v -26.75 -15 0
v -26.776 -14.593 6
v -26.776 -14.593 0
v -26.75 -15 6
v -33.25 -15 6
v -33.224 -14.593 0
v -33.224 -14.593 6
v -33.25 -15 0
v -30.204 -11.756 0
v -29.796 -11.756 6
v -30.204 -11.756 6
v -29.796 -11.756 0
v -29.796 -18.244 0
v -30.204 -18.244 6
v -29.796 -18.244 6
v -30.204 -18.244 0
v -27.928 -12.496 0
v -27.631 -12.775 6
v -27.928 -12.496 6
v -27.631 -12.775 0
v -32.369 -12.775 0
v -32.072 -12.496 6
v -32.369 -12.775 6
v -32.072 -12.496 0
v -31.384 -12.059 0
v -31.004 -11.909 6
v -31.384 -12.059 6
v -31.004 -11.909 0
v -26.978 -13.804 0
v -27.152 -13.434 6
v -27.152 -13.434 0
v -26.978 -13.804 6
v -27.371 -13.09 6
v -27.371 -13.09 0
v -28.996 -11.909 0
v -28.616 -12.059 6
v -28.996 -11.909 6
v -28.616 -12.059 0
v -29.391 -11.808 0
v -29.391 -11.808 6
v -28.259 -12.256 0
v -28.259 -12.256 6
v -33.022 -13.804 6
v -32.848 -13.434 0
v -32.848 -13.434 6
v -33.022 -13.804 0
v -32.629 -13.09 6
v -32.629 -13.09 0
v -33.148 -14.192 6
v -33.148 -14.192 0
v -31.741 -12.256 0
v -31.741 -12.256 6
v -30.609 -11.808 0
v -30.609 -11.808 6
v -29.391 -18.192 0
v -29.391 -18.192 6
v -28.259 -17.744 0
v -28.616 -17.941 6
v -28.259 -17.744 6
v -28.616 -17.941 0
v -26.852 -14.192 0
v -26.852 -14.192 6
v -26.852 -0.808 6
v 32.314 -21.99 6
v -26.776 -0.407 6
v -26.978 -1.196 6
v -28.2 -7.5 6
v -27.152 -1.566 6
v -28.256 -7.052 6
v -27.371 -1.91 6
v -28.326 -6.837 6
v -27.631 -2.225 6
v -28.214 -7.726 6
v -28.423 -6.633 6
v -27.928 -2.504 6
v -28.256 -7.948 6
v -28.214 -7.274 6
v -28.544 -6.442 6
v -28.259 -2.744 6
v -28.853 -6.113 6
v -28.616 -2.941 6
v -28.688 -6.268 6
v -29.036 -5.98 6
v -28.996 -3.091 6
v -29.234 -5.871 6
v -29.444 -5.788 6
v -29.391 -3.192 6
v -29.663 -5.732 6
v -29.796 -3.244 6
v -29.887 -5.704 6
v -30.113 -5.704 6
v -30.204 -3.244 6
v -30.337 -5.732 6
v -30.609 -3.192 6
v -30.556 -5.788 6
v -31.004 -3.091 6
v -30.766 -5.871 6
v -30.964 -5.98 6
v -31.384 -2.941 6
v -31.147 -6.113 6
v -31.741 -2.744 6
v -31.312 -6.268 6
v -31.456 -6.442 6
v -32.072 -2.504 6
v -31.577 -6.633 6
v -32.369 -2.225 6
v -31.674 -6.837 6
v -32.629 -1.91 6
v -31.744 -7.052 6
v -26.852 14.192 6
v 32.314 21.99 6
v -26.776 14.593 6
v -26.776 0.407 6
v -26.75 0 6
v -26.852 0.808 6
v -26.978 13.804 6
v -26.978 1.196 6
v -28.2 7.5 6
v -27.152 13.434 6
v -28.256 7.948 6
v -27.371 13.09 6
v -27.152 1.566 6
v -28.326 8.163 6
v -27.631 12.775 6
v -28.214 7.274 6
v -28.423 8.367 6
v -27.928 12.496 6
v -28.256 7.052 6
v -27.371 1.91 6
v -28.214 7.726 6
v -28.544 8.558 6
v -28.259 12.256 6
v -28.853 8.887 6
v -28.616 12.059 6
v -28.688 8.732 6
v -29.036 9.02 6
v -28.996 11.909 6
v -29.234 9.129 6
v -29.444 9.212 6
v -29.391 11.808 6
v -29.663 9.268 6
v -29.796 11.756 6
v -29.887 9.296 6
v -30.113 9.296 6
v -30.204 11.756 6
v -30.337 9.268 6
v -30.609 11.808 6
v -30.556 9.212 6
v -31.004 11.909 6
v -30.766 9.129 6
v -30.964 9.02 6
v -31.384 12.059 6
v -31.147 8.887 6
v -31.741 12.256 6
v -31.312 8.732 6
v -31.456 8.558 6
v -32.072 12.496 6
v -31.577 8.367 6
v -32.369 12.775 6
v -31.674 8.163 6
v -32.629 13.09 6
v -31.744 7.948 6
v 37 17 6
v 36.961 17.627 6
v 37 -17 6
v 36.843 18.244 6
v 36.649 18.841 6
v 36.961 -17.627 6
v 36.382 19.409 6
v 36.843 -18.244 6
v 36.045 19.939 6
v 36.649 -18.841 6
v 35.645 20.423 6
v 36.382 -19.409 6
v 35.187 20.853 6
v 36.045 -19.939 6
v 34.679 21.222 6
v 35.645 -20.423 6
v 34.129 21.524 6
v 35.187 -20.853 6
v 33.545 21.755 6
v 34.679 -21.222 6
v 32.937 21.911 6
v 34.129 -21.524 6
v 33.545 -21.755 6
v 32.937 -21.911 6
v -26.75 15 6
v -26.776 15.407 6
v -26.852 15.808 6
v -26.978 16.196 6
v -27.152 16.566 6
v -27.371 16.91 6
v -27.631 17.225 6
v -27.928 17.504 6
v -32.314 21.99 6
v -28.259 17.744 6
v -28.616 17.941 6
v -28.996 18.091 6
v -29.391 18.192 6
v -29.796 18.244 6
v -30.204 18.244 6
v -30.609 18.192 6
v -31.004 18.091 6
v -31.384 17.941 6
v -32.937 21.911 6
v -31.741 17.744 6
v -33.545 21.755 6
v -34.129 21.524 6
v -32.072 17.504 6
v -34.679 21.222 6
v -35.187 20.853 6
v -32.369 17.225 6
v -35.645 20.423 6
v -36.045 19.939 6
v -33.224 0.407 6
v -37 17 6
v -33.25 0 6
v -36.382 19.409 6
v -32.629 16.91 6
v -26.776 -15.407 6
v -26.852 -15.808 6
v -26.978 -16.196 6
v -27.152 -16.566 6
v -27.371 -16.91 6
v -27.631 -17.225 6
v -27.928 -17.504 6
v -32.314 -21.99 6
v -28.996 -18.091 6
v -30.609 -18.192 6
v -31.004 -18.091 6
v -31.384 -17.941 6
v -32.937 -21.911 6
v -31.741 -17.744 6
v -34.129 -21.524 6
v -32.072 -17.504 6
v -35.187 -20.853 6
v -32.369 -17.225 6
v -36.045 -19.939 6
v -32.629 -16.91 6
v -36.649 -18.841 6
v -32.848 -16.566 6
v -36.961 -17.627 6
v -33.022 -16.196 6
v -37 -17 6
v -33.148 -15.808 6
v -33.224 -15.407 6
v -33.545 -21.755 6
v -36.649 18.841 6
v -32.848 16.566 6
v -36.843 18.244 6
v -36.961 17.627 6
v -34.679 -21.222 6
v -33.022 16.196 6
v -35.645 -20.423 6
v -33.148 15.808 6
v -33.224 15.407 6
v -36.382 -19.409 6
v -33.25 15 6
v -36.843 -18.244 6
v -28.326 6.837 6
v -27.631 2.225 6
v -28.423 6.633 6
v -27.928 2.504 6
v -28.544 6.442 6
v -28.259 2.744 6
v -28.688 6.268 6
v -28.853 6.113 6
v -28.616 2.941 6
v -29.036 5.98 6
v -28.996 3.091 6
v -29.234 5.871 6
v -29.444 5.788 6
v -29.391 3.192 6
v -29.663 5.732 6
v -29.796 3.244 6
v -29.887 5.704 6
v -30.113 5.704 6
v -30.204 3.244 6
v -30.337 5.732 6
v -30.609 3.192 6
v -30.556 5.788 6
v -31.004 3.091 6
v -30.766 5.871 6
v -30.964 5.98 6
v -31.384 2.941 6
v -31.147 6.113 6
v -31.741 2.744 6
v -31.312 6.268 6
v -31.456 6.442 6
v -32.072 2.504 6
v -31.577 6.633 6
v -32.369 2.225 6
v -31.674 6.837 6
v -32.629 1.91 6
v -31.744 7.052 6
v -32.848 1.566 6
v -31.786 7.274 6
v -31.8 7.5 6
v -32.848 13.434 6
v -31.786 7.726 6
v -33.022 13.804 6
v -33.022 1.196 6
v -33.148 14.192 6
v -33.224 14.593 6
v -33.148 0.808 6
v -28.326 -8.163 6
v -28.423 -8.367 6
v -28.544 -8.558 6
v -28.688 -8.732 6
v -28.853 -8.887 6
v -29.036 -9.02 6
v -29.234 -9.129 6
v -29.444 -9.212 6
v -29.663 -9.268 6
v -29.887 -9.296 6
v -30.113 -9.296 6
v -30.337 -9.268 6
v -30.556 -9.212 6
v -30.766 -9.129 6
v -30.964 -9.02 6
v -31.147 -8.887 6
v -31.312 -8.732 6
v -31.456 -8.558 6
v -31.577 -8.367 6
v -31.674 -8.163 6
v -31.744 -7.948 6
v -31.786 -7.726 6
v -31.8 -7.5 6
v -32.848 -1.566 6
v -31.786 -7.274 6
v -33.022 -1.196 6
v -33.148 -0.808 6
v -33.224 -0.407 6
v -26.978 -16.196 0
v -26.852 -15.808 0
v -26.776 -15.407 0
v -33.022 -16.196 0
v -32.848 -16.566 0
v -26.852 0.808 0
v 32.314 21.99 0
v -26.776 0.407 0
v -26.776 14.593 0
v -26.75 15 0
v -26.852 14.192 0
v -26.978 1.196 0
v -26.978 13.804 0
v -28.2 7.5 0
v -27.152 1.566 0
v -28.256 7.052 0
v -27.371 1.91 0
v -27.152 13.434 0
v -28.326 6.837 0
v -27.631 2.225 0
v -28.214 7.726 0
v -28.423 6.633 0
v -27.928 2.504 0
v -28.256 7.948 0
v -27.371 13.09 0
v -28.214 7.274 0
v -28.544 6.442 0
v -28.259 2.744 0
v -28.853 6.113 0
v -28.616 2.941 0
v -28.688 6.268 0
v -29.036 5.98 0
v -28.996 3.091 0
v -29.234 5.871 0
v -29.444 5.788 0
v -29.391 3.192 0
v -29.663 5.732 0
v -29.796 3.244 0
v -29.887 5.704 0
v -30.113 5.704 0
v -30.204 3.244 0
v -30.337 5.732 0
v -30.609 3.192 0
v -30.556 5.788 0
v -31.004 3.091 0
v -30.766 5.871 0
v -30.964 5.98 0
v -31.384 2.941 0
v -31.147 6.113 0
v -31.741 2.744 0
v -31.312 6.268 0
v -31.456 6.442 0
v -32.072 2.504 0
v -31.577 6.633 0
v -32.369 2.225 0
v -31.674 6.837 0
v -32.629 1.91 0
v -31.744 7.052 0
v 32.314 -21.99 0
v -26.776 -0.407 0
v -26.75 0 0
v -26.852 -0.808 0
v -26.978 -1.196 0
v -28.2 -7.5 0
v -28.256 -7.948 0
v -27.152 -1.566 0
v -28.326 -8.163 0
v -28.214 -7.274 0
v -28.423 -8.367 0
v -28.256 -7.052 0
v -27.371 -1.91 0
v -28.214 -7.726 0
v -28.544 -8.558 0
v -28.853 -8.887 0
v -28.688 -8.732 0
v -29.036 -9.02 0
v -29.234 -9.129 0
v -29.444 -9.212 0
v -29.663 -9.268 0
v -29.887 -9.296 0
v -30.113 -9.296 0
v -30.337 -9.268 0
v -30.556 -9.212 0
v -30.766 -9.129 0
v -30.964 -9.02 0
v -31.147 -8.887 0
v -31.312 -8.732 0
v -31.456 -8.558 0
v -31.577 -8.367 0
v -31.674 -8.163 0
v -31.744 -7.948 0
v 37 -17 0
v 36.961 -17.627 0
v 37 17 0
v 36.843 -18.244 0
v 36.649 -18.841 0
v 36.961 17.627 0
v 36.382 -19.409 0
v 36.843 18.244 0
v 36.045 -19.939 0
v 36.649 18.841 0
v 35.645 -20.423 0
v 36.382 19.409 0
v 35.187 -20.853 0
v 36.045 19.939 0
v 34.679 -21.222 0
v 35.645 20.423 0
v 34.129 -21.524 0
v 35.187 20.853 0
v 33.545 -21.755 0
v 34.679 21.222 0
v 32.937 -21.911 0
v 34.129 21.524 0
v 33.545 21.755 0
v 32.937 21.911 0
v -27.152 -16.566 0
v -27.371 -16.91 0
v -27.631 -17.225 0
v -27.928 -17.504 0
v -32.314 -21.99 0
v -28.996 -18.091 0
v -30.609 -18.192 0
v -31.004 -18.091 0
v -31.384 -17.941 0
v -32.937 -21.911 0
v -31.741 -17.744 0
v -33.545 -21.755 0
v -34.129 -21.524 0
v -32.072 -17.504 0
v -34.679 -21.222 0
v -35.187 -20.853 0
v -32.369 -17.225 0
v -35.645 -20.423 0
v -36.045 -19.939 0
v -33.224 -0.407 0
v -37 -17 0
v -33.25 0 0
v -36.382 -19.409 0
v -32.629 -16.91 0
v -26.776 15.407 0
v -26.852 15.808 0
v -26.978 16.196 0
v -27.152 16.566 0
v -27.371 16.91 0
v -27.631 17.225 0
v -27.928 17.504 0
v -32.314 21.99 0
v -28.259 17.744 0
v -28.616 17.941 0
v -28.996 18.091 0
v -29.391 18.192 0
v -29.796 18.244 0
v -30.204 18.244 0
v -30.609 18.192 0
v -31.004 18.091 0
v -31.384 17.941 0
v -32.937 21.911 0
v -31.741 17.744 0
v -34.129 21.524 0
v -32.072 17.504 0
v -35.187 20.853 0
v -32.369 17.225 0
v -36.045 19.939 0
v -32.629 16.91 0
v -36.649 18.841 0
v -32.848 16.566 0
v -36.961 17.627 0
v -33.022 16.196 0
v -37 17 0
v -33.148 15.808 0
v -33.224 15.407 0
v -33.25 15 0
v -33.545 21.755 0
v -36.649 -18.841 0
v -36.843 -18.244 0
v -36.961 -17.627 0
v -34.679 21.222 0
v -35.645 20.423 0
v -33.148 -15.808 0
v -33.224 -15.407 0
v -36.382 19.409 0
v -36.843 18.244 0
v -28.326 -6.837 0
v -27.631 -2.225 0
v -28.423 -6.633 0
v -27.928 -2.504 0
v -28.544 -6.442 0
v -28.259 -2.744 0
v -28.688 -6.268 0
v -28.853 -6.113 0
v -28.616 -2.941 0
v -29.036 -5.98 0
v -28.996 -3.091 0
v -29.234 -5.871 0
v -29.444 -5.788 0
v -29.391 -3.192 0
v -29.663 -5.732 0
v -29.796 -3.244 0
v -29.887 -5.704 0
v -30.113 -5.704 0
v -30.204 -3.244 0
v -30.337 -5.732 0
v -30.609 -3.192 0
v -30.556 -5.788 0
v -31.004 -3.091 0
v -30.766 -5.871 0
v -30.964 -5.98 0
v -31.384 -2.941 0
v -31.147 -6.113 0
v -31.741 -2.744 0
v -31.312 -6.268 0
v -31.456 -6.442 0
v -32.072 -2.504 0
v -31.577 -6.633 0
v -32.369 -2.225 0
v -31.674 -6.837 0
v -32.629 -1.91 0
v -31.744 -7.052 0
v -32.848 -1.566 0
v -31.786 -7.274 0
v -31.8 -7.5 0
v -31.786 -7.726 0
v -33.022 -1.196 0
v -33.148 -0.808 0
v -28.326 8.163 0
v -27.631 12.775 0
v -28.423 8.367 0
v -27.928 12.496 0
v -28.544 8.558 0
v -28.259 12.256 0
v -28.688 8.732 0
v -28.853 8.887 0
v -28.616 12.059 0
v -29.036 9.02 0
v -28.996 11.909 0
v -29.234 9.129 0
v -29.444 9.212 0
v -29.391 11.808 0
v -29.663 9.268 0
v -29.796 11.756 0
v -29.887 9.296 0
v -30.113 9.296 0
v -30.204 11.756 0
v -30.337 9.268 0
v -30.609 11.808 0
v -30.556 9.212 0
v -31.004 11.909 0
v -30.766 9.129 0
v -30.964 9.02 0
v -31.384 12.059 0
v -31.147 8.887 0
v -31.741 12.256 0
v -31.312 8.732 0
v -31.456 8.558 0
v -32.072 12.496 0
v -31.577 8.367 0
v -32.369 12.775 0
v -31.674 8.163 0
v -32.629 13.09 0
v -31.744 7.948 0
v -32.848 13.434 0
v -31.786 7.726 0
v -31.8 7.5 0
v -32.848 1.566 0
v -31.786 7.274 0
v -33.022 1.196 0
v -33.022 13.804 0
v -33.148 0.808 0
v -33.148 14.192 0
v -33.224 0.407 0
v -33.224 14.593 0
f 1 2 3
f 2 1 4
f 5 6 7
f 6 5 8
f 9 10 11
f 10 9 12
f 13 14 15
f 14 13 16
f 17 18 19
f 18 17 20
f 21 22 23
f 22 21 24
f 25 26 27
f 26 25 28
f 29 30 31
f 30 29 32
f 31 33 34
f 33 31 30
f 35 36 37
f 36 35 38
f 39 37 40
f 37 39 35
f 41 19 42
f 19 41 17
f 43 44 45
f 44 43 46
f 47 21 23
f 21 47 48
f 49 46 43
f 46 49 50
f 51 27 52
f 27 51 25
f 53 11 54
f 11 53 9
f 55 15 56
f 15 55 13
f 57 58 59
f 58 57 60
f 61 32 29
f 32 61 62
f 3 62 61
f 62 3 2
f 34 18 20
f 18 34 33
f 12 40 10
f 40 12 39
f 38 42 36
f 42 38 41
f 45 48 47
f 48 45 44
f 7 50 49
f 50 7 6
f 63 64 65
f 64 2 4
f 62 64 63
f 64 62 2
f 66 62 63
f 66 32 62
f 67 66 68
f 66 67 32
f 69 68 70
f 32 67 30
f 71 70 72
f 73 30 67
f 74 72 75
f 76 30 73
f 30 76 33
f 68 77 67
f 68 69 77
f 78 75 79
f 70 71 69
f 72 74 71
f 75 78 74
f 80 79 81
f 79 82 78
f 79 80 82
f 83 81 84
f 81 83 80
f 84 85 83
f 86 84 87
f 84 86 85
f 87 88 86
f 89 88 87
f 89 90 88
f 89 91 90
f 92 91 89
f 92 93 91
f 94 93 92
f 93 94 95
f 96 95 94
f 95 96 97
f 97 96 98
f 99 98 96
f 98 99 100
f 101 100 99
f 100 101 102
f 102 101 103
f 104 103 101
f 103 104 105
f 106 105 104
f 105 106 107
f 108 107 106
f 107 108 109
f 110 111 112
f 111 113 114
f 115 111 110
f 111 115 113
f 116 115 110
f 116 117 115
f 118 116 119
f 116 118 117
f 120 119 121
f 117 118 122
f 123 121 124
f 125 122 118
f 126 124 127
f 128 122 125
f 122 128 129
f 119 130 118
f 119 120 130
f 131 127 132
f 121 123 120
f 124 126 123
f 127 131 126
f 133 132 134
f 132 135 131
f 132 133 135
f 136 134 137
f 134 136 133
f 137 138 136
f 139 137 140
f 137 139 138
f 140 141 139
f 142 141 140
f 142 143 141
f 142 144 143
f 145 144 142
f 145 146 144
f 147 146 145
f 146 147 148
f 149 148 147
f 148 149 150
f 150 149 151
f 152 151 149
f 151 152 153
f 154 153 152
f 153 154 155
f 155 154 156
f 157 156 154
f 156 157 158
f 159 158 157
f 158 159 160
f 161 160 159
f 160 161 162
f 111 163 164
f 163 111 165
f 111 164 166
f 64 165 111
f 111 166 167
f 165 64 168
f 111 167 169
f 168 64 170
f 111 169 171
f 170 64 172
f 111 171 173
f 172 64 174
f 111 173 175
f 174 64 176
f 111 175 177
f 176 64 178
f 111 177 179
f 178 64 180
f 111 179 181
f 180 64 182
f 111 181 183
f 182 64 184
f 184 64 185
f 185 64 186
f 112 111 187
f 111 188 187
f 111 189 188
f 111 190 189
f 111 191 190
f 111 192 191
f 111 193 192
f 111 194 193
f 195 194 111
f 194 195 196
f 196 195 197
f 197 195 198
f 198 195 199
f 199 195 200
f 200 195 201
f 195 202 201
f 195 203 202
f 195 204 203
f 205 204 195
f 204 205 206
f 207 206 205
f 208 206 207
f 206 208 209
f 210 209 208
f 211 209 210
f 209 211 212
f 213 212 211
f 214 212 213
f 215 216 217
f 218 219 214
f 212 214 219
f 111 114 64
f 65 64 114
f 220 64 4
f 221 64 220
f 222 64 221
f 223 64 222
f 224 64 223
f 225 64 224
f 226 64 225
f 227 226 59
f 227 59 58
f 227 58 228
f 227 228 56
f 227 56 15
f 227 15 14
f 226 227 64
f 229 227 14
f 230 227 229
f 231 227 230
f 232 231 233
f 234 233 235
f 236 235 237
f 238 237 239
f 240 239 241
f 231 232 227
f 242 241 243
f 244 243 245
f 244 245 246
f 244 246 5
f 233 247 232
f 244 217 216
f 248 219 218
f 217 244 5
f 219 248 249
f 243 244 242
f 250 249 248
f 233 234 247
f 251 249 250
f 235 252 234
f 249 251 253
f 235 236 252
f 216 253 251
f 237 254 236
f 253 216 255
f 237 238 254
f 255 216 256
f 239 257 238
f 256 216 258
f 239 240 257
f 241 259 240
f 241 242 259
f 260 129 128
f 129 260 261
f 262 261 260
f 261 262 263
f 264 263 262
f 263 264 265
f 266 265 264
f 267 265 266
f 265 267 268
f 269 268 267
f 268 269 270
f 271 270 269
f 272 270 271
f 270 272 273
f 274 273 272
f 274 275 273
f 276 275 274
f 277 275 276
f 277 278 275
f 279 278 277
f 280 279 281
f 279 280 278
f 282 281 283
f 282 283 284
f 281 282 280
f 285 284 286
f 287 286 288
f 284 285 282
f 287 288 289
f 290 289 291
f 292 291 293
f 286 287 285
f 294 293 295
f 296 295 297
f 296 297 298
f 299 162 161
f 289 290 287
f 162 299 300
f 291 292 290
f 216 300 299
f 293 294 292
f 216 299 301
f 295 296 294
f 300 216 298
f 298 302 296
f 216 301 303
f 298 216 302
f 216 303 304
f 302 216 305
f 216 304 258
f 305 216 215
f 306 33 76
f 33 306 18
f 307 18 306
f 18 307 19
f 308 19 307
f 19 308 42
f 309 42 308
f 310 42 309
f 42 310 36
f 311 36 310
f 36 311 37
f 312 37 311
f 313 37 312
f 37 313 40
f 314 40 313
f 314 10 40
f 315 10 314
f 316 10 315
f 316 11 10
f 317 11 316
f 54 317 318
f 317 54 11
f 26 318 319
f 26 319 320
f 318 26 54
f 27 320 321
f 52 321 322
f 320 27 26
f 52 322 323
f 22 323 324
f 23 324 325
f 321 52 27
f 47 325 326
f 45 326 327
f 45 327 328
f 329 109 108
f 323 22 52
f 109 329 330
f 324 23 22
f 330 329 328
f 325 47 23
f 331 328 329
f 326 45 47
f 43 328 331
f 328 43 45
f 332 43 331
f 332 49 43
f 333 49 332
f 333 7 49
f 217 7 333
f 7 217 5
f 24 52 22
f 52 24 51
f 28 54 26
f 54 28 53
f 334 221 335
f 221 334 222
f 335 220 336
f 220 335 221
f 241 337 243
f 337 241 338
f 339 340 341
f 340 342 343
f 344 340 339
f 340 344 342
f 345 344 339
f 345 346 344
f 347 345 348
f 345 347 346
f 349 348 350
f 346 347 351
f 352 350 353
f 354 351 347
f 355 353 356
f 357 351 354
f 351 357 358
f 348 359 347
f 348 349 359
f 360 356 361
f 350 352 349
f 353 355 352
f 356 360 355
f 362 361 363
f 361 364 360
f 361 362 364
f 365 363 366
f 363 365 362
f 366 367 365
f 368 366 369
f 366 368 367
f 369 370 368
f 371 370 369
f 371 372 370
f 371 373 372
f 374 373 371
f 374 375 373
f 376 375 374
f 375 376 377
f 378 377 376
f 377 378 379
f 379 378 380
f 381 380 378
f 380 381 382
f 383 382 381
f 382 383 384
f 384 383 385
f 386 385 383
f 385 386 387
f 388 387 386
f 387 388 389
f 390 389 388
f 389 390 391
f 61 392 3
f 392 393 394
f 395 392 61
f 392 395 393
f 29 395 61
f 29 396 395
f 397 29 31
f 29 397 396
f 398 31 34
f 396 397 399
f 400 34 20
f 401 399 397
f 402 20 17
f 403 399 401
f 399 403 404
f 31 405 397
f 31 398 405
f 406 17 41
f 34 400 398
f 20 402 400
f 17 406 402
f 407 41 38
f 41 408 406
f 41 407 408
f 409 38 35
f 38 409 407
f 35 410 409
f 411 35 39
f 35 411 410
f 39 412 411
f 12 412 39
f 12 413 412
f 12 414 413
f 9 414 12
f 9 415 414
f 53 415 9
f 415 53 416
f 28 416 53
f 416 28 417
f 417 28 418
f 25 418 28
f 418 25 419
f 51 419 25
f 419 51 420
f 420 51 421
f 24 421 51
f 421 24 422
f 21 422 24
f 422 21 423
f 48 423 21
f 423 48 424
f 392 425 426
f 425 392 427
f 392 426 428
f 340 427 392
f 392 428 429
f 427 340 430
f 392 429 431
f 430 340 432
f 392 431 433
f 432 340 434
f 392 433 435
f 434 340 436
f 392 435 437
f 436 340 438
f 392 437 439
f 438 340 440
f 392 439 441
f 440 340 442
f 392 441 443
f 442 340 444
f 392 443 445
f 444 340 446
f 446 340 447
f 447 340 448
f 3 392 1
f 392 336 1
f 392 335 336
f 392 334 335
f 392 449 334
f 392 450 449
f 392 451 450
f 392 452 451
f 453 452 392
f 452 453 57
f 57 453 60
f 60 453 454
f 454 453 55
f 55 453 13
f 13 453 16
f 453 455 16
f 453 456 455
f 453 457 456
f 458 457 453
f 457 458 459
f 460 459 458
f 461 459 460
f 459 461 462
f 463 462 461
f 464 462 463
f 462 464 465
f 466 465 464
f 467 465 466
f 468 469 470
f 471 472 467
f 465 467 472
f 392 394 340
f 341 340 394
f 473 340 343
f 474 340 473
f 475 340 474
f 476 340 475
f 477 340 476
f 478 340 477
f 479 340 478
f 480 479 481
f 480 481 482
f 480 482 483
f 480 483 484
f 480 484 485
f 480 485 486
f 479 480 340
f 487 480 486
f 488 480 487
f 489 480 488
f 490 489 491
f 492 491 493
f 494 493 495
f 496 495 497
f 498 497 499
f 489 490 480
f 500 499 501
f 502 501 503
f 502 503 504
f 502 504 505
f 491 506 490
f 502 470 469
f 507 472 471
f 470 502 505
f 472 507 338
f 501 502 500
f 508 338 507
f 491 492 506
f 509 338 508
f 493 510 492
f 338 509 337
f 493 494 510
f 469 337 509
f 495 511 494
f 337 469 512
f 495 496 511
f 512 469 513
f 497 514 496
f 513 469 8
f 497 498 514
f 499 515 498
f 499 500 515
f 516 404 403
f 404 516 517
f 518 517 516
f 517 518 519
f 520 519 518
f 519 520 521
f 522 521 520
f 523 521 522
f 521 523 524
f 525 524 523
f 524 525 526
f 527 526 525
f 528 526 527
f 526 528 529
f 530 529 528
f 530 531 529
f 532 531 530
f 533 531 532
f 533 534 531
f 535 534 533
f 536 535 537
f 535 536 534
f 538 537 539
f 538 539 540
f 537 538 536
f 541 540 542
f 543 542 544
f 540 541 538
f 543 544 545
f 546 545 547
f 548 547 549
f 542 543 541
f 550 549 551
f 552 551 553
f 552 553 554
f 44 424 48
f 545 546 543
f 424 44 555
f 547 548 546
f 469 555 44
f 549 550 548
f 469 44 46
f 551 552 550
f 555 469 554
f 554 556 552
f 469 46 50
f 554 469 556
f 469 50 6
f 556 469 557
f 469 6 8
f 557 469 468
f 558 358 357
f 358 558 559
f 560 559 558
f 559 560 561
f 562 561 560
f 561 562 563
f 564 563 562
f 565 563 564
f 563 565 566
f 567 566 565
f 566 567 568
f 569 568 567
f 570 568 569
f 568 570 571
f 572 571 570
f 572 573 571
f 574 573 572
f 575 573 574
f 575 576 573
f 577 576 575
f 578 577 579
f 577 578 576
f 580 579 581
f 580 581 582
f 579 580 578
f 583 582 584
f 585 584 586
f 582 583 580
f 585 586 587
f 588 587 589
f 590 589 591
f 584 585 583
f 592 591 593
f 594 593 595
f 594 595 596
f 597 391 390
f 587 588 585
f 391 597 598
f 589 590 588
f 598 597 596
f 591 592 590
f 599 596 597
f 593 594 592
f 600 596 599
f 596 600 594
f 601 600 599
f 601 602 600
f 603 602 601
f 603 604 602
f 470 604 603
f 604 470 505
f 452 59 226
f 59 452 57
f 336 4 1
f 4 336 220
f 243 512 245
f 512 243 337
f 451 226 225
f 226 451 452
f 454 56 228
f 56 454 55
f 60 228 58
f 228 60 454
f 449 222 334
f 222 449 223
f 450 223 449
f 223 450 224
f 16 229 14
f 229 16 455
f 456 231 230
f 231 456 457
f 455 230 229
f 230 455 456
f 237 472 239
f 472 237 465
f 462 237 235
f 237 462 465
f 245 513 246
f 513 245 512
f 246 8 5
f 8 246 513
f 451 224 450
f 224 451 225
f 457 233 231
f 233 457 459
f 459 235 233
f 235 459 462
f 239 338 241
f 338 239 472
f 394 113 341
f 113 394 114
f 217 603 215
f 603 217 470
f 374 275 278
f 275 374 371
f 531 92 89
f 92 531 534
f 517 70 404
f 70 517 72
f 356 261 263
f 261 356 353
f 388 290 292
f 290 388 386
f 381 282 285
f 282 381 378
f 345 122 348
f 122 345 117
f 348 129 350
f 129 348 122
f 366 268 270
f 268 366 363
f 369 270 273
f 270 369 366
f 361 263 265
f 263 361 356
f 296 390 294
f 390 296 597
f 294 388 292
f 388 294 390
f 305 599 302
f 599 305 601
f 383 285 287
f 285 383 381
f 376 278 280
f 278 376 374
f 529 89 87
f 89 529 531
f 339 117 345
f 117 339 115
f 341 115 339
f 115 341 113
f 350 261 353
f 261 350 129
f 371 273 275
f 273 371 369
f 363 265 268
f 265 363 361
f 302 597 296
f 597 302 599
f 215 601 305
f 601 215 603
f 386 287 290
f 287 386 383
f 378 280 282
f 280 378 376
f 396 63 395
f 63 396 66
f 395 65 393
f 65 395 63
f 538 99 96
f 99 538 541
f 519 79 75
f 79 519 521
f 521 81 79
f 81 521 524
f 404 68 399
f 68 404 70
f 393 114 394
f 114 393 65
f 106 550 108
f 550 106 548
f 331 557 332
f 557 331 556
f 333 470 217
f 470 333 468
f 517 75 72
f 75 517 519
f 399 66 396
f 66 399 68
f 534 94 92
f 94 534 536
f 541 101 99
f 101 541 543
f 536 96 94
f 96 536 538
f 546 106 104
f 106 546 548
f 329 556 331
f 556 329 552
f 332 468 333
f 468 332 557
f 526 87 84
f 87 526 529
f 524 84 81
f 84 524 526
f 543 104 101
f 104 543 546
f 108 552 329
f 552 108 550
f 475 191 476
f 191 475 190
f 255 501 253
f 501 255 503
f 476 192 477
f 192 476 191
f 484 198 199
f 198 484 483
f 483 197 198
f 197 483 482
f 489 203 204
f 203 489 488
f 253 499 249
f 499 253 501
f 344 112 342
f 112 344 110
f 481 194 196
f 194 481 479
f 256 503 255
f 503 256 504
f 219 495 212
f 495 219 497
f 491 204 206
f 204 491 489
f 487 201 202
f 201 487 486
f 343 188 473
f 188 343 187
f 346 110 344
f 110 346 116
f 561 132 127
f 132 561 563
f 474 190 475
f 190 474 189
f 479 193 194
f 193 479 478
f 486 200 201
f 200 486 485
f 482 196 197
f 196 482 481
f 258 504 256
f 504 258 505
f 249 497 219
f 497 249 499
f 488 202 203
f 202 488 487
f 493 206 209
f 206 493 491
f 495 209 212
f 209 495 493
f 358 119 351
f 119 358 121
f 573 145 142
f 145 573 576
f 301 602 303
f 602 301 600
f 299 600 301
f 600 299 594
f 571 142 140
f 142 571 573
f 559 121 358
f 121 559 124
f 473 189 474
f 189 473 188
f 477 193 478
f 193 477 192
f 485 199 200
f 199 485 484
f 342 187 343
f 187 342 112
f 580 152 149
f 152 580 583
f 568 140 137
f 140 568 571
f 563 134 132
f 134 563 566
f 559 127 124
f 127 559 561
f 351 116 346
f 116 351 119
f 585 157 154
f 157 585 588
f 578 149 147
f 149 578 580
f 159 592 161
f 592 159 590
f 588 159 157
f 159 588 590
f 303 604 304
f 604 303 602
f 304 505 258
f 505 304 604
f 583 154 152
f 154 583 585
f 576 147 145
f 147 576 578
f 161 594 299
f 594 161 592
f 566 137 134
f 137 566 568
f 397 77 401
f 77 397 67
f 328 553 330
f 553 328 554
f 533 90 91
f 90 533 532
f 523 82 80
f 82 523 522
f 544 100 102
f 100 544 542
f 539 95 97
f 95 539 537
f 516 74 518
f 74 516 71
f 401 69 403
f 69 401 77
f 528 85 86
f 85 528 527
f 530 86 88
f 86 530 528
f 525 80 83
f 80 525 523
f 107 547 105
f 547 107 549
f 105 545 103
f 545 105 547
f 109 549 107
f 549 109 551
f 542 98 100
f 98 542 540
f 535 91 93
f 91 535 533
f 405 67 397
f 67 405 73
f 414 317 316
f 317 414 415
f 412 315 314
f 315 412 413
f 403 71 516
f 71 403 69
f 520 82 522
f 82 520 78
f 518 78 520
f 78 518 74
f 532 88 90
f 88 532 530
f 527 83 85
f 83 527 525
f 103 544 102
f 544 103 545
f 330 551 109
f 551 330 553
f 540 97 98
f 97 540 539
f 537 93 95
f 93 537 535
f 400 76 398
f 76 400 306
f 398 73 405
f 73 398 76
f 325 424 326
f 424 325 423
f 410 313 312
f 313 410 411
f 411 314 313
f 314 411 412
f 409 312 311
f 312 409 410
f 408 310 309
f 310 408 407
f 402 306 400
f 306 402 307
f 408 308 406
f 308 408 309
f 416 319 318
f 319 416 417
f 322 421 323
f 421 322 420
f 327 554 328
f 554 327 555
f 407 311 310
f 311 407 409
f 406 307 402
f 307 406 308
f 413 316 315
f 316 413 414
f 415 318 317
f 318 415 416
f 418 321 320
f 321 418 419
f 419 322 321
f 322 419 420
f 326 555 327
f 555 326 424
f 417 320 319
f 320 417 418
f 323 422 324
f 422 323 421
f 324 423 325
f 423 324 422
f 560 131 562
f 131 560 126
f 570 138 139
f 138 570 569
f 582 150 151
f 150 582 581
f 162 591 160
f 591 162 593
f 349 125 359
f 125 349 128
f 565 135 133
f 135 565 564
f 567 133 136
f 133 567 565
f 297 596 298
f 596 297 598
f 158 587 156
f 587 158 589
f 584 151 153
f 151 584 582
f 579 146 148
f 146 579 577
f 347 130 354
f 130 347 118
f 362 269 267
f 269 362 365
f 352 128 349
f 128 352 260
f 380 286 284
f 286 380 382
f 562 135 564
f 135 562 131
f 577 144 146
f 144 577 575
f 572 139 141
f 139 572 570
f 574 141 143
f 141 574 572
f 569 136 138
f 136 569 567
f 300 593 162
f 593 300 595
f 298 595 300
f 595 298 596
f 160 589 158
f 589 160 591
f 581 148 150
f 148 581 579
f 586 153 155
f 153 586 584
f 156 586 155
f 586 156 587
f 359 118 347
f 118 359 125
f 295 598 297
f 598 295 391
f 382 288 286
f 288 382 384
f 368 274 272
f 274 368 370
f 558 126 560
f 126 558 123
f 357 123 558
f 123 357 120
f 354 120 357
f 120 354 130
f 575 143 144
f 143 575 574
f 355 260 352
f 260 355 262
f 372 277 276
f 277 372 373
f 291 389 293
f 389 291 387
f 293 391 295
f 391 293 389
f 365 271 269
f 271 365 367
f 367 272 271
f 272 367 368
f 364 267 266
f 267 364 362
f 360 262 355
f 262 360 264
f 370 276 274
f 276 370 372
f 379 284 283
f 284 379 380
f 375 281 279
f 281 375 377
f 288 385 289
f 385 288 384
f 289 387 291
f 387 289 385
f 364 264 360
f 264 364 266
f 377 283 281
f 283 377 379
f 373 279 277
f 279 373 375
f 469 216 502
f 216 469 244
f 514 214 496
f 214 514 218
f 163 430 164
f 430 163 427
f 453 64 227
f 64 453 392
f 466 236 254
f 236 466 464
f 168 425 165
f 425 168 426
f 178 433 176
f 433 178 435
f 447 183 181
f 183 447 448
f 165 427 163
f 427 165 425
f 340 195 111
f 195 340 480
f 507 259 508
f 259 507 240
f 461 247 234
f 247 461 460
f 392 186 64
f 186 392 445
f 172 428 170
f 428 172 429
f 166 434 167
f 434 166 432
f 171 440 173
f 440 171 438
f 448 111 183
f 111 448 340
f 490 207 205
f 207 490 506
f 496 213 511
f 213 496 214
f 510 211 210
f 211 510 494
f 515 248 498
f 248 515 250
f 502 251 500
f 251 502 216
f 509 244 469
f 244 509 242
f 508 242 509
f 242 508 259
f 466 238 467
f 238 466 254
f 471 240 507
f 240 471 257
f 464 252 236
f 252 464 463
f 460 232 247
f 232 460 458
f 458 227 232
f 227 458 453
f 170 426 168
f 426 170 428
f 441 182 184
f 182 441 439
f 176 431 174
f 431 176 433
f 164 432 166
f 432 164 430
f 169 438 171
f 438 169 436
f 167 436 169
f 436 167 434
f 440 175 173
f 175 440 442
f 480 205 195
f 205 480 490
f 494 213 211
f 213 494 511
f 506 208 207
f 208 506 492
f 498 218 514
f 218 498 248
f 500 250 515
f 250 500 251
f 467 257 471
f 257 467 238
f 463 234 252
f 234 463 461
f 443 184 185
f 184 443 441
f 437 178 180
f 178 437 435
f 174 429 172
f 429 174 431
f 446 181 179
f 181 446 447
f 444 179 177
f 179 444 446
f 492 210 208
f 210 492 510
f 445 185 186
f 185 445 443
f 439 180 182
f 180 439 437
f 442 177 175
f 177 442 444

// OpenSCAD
$fn = 50;


difference() {
	union() {
		hull() {
			translate(v = [-32.0000000000, 17.0000000000, 0]) {
				cylinder(h = 6, r = 5);
			}
			translate(v = [32.0000000000, 17.0000000000, 0]) {
				cylinder(h = 6, r = 5);
			}
			translate(v = [-32.0000000000, -17.0000000000, 0]) {
				cylinder(h = 6, r = 5);
			}
			translate(v = [32.0000000000, -17.0000000000, 0]) {
				cylinder(h = 6, r = 5);
			}
		}
	}
	union() {
		translate(v = [-30.0000000000, -15.0000000000, 0]) {
			cylinder(h = 6, r = 3.2500000000);
		}
		translate(v = [-30.0000000000, 0.0000000000, 0]) {
			cylinder(h = 6, r = 3.2500000000);
		}
		translate(v = [-30.0000000000, 15.0000000000, 0]) {
			cylinder(h = 6, r = 3.2500000000);
		}
		translate(v = [-30.0000000000, -15.0000000000, 0]) {
			cylinder(h = 6, r = 1.8000000000);
		}
		translate(v = [-30.0000000000, -7.5000000000, 0]) {
			cylinder(h = 6, r = 1.8000000000);
		}
		translate(v = [-30.0000000000, 0.0000000000, 0]) {
			cylinder(h = 6, r = 1.8000000000);
		}
		translate(v = [-30.0000000000, 7.5000000000, 0]) {
			cylinder(h = 6, r = 1.8000000000);
		}
		translate(v = [-30.0000000000, 15.0000000000, 0]) {
			cylinder(h = 6, r = 1.8000000000);
		}
		translate(v = [-30.0000000000, -15.0000000000, 0]) {
			cylinder(h = 6, r = 1.8000000000);
		}
		translate(v = [-30.0000000000, -7.5000000000, 0]) {
			cylinder(h = 6, r = 1.8000000000);
		}
		translate(v = [-30.0000000000, 0.0000000000, 0]) {
			cylinder(h = 6, r = 1.8000000000);
		}
		translate(v = [-30.0000000000, 7.5000000000, 0]) {
			cylinder(h = 6, r = 1.8000000000);
		}
		translate(v = [-30.0000000000, 15.0000000000, 0]) {
			cylinder(h = 6, r = 1.8000000000);
		}
		translate(v = [-30.0000000000, -15.0000000000, 0]) {
			cylinder(h = 6, r = 1.8000000000);
		}
		translate(v = [-30.0000000000, -7.5000000000, 0]) {
			cylinder(h = 6, r = 1.8000000000);
		}
		translate(v = [-30.0000000000, 0.0000000000, 0]) {
			cylinder(h = 6, r = 1.8000000000);
		}
		translate(v = [-30.0000000000, 7.5000000000, 0]) {
			cylinder(h = 6, r = 1.8000000000);
		}
		translate(v = [-30.0000000000, 15.0000000000, 0]) {
			cylinder(h = 6, r = 1.8000000000);
		}
	}
}
